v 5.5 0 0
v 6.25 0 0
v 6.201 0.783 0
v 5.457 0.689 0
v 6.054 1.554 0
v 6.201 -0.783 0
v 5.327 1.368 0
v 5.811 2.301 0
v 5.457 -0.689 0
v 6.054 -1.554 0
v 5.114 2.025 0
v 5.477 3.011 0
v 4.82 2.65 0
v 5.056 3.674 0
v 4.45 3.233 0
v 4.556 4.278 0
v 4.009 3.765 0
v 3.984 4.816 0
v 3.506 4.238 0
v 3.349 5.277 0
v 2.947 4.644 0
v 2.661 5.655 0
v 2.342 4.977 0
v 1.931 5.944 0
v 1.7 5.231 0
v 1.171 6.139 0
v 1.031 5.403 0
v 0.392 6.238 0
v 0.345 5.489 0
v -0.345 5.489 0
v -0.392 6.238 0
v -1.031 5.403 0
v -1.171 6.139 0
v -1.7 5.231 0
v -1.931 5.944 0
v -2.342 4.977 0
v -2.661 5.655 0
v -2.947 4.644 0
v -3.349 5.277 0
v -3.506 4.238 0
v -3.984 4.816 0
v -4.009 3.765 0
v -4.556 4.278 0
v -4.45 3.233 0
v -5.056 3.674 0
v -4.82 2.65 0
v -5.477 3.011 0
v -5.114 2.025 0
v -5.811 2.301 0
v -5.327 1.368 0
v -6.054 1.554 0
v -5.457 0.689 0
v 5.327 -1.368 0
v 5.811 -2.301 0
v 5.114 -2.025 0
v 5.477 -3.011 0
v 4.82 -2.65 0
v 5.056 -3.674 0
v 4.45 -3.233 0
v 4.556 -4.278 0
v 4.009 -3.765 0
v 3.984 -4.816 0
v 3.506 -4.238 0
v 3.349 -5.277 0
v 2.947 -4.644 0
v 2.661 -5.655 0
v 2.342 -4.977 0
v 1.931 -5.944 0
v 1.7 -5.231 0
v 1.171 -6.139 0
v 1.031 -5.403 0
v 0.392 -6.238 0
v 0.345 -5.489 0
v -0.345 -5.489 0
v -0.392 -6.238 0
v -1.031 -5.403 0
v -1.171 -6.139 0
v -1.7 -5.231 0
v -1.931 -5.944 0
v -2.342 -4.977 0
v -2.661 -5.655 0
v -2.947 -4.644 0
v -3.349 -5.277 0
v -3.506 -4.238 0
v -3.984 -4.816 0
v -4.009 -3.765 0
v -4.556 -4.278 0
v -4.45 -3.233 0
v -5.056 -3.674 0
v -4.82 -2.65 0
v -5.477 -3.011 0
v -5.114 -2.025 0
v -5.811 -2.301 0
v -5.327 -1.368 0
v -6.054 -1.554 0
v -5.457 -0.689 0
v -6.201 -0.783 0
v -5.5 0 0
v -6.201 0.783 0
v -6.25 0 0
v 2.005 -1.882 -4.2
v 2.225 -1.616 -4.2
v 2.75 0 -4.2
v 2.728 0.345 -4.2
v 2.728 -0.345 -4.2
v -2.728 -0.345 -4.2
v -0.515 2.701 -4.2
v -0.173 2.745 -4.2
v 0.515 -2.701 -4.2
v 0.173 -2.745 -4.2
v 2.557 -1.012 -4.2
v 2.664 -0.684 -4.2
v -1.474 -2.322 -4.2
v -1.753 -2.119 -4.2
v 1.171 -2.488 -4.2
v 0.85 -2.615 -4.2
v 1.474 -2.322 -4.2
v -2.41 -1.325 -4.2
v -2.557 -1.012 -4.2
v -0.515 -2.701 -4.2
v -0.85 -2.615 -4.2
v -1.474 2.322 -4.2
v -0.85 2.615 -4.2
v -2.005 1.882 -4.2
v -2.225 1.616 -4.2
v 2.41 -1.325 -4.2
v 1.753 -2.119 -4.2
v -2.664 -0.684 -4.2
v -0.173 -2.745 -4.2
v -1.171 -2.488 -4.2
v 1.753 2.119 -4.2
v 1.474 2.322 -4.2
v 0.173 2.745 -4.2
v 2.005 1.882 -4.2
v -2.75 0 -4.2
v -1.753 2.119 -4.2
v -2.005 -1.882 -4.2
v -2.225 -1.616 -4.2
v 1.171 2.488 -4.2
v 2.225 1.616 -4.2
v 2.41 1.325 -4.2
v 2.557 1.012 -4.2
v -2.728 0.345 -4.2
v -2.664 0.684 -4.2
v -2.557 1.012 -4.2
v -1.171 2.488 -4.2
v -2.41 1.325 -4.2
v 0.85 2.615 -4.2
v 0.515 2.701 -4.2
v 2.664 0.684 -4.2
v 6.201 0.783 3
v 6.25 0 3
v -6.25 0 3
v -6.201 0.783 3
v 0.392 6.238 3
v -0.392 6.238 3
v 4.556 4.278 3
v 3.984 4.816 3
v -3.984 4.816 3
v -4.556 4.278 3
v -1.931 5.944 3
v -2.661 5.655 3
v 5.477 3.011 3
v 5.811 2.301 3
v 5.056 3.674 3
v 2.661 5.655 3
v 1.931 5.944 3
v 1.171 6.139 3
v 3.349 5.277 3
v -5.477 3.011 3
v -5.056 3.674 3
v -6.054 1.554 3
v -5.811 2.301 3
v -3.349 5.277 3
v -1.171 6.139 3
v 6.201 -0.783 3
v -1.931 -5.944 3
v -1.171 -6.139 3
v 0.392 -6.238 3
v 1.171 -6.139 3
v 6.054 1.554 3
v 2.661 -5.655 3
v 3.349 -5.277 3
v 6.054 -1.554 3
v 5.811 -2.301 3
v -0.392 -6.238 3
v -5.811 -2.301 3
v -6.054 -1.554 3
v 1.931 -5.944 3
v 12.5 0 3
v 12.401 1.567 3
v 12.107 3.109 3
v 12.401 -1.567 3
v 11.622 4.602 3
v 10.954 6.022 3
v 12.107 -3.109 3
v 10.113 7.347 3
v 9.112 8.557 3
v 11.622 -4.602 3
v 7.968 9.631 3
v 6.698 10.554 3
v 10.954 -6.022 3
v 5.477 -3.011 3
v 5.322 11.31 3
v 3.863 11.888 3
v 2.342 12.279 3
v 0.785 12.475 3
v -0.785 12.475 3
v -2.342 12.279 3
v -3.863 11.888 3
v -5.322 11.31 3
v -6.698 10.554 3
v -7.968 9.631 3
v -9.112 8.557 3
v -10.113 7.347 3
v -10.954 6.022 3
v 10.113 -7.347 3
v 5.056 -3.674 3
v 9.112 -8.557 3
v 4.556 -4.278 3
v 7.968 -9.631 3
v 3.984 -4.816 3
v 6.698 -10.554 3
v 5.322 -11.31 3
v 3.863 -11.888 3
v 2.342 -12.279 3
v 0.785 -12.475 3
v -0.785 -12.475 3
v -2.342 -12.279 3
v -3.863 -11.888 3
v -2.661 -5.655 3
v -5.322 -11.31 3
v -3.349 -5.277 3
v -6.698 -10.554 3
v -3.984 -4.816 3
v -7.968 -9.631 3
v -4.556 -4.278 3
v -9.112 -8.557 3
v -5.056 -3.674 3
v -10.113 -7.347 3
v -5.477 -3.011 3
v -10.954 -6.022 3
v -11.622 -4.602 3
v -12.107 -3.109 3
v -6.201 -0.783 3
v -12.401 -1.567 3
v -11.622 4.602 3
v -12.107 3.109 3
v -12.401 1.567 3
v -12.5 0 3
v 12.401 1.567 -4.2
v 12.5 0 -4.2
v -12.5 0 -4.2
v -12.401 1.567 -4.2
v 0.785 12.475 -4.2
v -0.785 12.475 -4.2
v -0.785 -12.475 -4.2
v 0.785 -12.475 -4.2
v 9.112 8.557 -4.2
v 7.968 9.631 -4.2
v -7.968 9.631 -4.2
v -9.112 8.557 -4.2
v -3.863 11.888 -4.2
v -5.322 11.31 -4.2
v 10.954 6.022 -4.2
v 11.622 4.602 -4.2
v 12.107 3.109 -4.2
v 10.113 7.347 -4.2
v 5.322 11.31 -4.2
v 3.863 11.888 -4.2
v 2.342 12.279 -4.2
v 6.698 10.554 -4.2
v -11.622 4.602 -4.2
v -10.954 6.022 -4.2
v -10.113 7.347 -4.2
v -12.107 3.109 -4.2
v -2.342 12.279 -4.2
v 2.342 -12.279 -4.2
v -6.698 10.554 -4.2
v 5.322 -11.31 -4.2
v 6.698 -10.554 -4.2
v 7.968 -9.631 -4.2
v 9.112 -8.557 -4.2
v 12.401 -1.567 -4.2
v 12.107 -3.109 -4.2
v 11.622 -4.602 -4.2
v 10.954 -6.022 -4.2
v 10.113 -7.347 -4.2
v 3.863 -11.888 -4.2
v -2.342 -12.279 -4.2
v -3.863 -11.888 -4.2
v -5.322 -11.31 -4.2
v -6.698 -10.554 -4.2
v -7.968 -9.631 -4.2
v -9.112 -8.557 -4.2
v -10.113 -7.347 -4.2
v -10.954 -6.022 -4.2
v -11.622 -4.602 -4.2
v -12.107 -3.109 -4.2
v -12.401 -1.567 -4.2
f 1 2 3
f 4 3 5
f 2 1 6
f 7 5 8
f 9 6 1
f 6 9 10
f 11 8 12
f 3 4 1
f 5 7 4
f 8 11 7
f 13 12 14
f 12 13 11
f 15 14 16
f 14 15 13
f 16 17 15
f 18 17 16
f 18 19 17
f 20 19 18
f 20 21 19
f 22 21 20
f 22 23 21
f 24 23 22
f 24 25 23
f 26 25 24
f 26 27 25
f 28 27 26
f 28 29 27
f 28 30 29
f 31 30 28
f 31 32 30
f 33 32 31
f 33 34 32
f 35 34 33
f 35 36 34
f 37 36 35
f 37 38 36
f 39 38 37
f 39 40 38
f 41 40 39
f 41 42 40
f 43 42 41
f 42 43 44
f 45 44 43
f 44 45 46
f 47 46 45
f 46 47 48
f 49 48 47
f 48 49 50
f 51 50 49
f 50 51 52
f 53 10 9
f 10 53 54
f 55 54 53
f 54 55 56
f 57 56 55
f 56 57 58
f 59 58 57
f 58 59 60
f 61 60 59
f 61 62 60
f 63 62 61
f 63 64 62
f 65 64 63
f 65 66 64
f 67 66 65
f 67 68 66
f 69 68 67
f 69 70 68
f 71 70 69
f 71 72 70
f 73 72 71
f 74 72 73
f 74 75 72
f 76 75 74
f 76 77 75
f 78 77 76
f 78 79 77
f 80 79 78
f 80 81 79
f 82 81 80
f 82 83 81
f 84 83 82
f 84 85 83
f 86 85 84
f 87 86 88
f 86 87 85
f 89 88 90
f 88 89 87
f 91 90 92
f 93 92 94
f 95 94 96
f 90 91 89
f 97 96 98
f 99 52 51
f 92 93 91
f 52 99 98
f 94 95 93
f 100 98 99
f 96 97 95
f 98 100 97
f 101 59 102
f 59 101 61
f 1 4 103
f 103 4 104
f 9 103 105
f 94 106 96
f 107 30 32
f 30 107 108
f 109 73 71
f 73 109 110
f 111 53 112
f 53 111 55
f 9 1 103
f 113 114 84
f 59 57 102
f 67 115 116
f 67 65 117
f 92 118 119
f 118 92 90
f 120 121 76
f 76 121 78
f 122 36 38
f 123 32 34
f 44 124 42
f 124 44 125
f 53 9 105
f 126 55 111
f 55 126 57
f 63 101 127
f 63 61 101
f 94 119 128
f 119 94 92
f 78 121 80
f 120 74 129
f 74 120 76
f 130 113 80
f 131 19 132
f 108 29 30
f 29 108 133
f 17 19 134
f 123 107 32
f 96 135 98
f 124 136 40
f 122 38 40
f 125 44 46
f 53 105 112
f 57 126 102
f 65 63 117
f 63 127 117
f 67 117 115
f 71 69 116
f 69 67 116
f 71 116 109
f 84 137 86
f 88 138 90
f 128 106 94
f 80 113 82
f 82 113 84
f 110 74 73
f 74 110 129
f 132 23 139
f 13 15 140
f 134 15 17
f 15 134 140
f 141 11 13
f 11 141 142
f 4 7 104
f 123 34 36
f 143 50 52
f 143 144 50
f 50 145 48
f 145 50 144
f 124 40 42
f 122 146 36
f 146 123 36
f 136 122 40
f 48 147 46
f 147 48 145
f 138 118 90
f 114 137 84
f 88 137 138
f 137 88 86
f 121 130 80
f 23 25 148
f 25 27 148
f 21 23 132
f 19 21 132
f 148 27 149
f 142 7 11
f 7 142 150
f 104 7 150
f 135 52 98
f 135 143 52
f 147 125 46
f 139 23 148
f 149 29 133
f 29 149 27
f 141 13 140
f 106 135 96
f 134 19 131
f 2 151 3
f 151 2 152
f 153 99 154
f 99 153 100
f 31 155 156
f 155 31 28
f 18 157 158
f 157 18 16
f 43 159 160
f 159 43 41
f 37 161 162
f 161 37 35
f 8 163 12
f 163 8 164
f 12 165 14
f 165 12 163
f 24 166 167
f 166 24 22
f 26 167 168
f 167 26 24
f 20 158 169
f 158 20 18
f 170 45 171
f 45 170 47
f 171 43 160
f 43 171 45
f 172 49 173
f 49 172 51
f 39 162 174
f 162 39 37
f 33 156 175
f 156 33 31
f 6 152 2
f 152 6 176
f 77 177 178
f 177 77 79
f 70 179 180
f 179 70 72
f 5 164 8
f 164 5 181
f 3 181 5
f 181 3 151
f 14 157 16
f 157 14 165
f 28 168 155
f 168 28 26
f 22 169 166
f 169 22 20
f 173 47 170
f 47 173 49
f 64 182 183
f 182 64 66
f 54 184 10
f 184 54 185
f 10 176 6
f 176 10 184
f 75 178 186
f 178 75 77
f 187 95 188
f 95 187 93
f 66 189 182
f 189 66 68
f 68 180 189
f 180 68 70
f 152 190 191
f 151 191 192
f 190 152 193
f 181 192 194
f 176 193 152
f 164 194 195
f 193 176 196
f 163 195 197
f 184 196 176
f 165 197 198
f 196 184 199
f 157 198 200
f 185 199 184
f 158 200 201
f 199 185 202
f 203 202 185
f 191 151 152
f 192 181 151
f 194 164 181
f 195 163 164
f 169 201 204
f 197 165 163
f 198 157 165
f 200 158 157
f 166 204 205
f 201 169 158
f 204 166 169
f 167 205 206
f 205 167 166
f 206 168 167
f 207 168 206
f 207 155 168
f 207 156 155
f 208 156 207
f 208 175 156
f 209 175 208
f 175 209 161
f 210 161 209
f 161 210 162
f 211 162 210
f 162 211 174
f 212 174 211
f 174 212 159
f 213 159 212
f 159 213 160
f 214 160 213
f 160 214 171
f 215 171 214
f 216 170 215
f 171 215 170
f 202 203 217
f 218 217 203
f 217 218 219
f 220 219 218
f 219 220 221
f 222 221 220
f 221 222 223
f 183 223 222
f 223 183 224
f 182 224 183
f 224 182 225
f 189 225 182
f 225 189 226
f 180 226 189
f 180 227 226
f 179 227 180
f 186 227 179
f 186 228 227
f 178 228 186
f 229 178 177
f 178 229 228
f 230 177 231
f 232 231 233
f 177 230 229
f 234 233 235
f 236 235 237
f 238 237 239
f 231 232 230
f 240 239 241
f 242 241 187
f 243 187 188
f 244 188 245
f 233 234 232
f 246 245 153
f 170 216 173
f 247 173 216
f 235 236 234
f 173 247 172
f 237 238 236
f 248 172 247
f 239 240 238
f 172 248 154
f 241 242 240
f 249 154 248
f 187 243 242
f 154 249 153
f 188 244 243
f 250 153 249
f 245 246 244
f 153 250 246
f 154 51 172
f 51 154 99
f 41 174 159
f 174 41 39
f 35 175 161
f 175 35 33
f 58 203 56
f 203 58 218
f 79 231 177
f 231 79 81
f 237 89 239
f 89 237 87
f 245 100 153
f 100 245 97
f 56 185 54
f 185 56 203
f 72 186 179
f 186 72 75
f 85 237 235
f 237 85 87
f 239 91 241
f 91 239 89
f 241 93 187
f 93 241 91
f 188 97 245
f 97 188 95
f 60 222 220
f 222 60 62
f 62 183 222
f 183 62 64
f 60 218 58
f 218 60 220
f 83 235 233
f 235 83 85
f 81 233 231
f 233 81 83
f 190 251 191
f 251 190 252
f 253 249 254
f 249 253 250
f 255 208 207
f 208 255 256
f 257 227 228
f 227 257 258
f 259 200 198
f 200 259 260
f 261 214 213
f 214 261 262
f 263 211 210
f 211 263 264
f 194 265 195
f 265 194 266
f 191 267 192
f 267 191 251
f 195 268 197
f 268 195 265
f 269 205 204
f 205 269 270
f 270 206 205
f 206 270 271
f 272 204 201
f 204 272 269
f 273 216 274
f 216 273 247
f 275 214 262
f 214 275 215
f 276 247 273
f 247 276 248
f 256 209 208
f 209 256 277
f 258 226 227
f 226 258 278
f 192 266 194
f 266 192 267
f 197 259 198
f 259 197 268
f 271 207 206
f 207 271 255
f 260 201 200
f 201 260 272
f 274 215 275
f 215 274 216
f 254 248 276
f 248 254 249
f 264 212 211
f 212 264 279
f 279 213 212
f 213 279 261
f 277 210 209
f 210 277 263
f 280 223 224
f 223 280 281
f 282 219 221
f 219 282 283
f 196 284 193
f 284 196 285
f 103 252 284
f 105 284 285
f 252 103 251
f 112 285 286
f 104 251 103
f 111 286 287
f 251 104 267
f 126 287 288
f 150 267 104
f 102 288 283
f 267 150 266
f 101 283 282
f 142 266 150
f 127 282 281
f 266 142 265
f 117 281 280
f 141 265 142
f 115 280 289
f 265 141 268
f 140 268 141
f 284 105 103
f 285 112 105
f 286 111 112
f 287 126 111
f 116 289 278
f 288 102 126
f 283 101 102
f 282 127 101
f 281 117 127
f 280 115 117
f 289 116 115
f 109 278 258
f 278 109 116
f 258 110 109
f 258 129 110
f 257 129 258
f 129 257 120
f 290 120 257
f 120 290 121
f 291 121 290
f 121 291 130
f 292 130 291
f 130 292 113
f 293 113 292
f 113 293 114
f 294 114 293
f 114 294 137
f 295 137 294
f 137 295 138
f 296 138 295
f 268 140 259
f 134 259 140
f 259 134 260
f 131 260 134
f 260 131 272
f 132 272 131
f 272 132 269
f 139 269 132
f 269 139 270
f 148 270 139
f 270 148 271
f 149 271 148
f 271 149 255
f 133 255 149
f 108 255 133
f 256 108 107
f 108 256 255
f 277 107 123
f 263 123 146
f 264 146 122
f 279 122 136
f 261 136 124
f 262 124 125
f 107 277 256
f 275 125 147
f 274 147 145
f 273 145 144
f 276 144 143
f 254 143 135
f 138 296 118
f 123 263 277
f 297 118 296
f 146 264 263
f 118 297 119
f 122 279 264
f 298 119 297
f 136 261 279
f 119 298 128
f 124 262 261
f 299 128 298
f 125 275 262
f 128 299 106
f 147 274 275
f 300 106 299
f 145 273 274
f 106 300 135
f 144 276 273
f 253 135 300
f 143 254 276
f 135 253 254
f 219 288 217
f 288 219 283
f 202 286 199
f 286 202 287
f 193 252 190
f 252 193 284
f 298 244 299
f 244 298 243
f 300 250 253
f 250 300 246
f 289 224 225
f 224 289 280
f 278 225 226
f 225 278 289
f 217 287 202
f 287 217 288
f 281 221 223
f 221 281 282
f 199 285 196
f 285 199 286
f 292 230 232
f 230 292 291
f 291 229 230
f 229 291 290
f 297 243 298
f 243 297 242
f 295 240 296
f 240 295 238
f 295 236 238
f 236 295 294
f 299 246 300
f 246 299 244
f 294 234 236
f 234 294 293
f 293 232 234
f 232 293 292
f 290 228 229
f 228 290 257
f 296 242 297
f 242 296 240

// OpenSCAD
$fn = 50;


difference() {
	union() {
		translate(v = [0, 0, -4.2000000000]) {
			cylinder(h = 7.2000000000, r = 12.5000000000);
		}
	}
	union() {
		translate(v = [0, 0, 0]) {
			rotate(a = [0, 0, 0]) {
				difference() {
					union() {
						translate(v = [0, 0, -7.2000000000]) {
							cylinder(h = 7.2000000000, r = 2.2500000000);
						}
						translate(v = [0, 0, -4.2000000000]) {
							cylinder(h = 4.2000000000, r1 = 2.7500000000, r2 = 5.5000000000);
						}
						translate(v = [0, 0, -7.2000000000]) {
							cylinder(h = 7.2000000000, r = 2.7500000000);
						}
						translate(v = [0, 0, -7.2000000000]) {
							cylinder(h = 7.2000000000, r = 2.2500000000);
						}
					}
					union();
				}
			}
		}
		#cylinder(h = 3, r = 6.2500000000);
	}
}
